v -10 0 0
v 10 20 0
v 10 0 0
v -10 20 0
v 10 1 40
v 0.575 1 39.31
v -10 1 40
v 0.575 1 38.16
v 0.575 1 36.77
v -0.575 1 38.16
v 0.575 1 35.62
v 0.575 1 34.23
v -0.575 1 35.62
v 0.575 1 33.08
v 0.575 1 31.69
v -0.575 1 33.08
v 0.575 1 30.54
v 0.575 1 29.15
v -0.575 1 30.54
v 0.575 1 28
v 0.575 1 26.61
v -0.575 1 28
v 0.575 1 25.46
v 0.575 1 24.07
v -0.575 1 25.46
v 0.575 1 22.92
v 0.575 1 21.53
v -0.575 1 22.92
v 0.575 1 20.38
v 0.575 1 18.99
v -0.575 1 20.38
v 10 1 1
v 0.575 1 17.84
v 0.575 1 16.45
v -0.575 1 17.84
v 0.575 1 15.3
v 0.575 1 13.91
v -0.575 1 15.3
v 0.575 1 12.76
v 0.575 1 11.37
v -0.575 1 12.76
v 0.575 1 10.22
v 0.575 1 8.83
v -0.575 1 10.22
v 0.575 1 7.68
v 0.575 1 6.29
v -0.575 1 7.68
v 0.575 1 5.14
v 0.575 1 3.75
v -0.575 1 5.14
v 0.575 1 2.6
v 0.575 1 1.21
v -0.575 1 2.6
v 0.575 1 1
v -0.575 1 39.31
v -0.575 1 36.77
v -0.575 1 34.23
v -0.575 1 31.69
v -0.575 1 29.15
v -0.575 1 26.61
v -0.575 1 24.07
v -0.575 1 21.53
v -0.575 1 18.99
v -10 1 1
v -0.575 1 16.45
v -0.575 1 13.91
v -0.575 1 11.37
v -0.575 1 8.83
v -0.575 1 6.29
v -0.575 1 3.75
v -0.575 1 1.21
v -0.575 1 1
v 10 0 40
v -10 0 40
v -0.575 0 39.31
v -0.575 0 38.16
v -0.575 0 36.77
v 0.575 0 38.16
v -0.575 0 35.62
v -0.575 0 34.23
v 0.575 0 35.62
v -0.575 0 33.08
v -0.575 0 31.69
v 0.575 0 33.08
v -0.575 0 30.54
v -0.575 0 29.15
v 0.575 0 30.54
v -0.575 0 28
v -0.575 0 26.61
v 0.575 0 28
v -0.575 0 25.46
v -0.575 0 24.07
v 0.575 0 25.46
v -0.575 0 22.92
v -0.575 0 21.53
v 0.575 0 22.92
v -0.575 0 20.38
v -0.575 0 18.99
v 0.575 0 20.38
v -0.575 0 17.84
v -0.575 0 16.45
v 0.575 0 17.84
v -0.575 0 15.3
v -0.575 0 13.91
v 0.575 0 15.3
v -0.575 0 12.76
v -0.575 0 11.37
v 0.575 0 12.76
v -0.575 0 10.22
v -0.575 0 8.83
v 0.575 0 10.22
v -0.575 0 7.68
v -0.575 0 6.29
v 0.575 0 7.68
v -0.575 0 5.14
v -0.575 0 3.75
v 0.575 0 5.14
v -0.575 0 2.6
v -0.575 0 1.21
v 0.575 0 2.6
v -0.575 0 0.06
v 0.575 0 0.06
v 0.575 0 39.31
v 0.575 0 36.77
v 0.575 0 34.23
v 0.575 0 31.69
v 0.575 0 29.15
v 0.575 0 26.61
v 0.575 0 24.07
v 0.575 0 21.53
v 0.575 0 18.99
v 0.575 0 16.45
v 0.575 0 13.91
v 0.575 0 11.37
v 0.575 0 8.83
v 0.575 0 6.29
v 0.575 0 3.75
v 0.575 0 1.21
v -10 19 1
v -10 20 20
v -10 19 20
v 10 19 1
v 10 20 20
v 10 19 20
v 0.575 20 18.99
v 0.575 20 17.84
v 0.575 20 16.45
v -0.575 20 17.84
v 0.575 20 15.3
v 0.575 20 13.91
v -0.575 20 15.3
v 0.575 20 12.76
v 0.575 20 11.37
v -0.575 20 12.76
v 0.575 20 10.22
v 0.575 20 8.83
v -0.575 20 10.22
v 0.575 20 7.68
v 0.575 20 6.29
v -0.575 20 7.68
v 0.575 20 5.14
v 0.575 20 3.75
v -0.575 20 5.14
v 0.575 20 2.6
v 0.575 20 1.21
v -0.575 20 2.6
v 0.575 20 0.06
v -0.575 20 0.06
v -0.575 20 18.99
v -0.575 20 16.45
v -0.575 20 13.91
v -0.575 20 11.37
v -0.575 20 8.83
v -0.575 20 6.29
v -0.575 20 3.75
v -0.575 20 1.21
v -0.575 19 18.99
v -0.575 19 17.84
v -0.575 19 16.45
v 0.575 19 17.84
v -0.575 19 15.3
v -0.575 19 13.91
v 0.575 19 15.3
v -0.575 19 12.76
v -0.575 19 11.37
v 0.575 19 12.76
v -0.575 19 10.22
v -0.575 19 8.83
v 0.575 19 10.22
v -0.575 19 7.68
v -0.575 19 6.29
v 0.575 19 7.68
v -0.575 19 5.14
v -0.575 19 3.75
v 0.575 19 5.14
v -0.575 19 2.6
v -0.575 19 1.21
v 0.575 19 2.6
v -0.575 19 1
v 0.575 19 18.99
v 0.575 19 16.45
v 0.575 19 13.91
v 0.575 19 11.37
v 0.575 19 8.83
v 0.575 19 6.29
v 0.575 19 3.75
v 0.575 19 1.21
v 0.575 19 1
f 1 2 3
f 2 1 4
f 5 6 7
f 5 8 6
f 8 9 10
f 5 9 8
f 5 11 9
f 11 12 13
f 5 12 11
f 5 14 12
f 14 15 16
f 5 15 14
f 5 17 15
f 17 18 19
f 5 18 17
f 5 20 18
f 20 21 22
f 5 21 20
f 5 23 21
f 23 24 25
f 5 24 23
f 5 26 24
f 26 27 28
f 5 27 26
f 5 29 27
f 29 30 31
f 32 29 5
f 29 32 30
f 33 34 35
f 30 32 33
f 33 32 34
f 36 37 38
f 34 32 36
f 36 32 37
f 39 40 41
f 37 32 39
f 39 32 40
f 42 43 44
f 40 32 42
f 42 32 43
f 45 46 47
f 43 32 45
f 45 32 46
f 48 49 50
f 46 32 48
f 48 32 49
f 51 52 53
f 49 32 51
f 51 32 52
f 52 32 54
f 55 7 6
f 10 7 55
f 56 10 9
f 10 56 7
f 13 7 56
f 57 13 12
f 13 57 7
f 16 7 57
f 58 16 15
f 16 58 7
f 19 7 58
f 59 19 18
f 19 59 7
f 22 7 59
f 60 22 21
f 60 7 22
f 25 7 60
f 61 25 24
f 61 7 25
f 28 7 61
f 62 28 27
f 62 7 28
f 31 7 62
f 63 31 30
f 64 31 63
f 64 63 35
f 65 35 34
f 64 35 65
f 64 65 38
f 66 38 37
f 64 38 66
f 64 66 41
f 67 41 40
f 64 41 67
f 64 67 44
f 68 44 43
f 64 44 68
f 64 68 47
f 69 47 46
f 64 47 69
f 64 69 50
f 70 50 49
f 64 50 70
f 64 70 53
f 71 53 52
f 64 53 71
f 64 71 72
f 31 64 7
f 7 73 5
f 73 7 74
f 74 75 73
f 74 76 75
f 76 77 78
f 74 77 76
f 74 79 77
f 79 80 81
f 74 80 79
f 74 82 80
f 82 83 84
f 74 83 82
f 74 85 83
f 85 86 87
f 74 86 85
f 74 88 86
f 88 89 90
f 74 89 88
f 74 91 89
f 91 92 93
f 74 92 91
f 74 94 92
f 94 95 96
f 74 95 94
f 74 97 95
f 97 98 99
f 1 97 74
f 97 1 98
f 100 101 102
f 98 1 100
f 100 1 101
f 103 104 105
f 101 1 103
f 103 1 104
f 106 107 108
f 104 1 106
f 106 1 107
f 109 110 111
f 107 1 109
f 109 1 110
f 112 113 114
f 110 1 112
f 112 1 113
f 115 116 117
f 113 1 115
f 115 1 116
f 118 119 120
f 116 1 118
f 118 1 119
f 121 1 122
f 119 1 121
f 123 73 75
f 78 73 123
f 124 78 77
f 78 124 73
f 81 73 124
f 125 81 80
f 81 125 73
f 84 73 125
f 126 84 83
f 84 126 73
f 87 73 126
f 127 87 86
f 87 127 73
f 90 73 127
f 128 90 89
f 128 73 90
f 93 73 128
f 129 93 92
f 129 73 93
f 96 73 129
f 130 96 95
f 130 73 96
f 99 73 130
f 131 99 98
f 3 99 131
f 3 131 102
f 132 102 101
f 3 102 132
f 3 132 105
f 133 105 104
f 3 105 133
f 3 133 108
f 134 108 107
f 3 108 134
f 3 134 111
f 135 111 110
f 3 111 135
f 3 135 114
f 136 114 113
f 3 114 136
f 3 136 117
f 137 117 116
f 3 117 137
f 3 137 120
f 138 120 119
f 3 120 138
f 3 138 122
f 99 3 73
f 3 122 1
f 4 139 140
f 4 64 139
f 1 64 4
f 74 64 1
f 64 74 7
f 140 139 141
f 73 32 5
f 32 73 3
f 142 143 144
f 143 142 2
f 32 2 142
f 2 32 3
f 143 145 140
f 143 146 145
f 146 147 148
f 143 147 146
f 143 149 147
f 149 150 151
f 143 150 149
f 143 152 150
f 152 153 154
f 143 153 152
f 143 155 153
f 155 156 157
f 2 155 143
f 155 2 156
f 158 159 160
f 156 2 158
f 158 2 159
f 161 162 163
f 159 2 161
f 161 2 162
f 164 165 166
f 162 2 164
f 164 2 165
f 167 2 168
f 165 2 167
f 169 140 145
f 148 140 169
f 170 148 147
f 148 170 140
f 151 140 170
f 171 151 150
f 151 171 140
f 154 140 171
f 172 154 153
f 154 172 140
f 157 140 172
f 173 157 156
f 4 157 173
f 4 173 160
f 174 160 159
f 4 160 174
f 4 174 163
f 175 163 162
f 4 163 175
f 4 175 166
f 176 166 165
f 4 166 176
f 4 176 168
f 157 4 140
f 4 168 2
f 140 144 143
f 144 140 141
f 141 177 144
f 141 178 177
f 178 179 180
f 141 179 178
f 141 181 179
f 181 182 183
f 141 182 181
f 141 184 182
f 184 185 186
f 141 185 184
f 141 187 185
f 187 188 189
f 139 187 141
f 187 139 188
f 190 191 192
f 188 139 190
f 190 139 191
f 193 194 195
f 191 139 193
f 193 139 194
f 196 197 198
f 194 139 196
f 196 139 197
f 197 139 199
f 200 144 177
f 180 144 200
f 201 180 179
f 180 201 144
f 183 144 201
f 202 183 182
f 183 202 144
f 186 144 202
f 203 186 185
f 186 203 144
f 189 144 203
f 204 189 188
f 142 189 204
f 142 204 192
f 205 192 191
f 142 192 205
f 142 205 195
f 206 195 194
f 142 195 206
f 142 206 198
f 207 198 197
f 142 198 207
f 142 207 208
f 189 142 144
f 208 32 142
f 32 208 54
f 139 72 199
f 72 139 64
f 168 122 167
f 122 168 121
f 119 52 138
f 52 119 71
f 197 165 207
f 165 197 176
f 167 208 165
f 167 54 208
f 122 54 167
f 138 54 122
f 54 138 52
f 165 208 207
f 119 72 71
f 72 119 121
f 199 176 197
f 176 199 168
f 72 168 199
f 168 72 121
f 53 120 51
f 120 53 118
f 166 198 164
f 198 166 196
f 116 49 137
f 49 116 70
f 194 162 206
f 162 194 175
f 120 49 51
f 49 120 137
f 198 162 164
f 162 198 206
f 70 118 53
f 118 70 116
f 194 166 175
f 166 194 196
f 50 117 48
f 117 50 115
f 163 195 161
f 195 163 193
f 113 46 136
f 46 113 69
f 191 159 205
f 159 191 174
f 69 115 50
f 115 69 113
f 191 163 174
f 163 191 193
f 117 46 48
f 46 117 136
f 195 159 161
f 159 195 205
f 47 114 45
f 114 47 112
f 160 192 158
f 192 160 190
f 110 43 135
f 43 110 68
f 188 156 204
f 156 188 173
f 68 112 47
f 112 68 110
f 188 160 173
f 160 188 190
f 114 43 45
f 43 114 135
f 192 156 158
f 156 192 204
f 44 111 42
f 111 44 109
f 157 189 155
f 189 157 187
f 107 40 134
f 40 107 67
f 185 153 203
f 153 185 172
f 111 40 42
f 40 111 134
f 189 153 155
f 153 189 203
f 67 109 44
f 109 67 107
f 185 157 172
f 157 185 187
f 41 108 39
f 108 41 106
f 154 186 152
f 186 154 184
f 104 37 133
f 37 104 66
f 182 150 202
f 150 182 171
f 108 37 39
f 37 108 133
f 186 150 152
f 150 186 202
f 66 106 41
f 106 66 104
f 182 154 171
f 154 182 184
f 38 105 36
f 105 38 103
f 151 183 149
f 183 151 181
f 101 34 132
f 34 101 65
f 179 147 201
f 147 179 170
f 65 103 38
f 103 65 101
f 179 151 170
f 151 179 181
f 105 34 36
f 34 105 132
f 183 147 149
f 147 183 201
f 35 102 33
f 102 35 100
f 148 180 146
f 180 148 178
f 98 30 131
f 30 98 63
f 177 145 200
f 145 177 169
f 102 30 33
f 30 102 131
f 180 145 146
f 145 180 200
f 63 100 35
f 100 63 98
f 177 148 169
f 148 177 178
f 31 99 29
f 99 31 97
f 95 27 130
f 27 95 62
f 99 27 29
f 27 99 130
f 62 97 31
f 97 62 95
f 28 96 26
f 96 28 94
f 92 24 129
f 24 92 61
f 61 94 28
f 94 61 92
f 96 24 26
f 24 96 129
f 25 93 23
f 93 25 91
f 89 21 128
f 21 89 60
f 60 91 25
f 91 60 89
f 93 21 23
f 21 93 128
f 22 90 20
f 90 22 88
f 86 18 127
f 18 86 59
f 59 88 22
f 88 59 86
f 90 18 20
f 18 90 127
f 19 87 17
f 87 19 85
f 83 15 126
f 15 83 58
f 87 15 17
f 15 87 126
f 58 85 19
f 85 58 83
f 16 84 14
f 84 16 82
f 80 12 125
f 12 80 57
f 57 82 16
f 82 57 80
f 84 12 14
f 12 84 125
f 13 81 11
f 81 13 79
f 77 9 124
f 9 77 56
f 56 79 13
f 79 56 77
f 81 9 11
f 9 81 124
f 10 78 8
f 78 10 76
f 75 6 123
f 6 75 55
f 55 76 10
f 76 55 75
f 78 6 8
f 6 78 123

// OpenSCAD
$fn = 100;

/*
  This is a calibration object, to help with printing header probes that requires accuracy
  in the z axis.
  
  To calibrate, try printing this object. 
  If it printed properly, you can fit your standard pin headers to the holes.
  
  If not then measure the longest length. It is 40mm in max height, so if your printer
  calibrates via a 20x20x20mm cube. Then half the 40mm to get the z height calibration result.
  
  40mm is chosen to help make the 20mm cube data entry more accurate after divison by 2.
  
*/

/* Currently Assuming Imperial Header Size */
header_width = 0.65;
header_spacing = 2.54;
tolerance = 0.5;

module header_hole_calibration(header_width, header_spacing, tolerance)
{
  x_count = 20;
  header_length = 20;

  module female_header_req(hw, hl, tol)
  {
      union()
      {
          #translate([-(hw+tol)/2,-(hw+tol)/2,-1])
              cube([hw+tol,hw+tol,hl+2]);
          
          /* Male Header Visualisation */
          %union()
          {
              translate([-(hw)/2,-(hw)/2,-3-2.5]) color("grey")
                  cube([hw,hw,hl+3+2.5]);
              translate([0,0,-(header_spacing)/2])
                  cube([header_spacing,header_spacing,(2.5)],  center=true);
          }
      }
  }
  
  difference()
  {
    union()
    {
      translate([0, -20/2, 0]) 
        cube([40,20,1]);
      translate([0, -20/2, 20-1]) 
        cube([20,20,1]);
      translate([0, -20/2, 0]) 
        cube([1,20,20]);
    }
    
    /* Cutout */
    for ( xi = [0 : 1 : (40/header_spacing)] )
      translate([header_spacing/4+header_spacing*xi, 0, 0]) 
        female_header_req(header_width, header_length, tolerance);
  }
}

rotate([0,-90,-90])
header_hole_calibration(header_width, header_spacing, tolerance);
